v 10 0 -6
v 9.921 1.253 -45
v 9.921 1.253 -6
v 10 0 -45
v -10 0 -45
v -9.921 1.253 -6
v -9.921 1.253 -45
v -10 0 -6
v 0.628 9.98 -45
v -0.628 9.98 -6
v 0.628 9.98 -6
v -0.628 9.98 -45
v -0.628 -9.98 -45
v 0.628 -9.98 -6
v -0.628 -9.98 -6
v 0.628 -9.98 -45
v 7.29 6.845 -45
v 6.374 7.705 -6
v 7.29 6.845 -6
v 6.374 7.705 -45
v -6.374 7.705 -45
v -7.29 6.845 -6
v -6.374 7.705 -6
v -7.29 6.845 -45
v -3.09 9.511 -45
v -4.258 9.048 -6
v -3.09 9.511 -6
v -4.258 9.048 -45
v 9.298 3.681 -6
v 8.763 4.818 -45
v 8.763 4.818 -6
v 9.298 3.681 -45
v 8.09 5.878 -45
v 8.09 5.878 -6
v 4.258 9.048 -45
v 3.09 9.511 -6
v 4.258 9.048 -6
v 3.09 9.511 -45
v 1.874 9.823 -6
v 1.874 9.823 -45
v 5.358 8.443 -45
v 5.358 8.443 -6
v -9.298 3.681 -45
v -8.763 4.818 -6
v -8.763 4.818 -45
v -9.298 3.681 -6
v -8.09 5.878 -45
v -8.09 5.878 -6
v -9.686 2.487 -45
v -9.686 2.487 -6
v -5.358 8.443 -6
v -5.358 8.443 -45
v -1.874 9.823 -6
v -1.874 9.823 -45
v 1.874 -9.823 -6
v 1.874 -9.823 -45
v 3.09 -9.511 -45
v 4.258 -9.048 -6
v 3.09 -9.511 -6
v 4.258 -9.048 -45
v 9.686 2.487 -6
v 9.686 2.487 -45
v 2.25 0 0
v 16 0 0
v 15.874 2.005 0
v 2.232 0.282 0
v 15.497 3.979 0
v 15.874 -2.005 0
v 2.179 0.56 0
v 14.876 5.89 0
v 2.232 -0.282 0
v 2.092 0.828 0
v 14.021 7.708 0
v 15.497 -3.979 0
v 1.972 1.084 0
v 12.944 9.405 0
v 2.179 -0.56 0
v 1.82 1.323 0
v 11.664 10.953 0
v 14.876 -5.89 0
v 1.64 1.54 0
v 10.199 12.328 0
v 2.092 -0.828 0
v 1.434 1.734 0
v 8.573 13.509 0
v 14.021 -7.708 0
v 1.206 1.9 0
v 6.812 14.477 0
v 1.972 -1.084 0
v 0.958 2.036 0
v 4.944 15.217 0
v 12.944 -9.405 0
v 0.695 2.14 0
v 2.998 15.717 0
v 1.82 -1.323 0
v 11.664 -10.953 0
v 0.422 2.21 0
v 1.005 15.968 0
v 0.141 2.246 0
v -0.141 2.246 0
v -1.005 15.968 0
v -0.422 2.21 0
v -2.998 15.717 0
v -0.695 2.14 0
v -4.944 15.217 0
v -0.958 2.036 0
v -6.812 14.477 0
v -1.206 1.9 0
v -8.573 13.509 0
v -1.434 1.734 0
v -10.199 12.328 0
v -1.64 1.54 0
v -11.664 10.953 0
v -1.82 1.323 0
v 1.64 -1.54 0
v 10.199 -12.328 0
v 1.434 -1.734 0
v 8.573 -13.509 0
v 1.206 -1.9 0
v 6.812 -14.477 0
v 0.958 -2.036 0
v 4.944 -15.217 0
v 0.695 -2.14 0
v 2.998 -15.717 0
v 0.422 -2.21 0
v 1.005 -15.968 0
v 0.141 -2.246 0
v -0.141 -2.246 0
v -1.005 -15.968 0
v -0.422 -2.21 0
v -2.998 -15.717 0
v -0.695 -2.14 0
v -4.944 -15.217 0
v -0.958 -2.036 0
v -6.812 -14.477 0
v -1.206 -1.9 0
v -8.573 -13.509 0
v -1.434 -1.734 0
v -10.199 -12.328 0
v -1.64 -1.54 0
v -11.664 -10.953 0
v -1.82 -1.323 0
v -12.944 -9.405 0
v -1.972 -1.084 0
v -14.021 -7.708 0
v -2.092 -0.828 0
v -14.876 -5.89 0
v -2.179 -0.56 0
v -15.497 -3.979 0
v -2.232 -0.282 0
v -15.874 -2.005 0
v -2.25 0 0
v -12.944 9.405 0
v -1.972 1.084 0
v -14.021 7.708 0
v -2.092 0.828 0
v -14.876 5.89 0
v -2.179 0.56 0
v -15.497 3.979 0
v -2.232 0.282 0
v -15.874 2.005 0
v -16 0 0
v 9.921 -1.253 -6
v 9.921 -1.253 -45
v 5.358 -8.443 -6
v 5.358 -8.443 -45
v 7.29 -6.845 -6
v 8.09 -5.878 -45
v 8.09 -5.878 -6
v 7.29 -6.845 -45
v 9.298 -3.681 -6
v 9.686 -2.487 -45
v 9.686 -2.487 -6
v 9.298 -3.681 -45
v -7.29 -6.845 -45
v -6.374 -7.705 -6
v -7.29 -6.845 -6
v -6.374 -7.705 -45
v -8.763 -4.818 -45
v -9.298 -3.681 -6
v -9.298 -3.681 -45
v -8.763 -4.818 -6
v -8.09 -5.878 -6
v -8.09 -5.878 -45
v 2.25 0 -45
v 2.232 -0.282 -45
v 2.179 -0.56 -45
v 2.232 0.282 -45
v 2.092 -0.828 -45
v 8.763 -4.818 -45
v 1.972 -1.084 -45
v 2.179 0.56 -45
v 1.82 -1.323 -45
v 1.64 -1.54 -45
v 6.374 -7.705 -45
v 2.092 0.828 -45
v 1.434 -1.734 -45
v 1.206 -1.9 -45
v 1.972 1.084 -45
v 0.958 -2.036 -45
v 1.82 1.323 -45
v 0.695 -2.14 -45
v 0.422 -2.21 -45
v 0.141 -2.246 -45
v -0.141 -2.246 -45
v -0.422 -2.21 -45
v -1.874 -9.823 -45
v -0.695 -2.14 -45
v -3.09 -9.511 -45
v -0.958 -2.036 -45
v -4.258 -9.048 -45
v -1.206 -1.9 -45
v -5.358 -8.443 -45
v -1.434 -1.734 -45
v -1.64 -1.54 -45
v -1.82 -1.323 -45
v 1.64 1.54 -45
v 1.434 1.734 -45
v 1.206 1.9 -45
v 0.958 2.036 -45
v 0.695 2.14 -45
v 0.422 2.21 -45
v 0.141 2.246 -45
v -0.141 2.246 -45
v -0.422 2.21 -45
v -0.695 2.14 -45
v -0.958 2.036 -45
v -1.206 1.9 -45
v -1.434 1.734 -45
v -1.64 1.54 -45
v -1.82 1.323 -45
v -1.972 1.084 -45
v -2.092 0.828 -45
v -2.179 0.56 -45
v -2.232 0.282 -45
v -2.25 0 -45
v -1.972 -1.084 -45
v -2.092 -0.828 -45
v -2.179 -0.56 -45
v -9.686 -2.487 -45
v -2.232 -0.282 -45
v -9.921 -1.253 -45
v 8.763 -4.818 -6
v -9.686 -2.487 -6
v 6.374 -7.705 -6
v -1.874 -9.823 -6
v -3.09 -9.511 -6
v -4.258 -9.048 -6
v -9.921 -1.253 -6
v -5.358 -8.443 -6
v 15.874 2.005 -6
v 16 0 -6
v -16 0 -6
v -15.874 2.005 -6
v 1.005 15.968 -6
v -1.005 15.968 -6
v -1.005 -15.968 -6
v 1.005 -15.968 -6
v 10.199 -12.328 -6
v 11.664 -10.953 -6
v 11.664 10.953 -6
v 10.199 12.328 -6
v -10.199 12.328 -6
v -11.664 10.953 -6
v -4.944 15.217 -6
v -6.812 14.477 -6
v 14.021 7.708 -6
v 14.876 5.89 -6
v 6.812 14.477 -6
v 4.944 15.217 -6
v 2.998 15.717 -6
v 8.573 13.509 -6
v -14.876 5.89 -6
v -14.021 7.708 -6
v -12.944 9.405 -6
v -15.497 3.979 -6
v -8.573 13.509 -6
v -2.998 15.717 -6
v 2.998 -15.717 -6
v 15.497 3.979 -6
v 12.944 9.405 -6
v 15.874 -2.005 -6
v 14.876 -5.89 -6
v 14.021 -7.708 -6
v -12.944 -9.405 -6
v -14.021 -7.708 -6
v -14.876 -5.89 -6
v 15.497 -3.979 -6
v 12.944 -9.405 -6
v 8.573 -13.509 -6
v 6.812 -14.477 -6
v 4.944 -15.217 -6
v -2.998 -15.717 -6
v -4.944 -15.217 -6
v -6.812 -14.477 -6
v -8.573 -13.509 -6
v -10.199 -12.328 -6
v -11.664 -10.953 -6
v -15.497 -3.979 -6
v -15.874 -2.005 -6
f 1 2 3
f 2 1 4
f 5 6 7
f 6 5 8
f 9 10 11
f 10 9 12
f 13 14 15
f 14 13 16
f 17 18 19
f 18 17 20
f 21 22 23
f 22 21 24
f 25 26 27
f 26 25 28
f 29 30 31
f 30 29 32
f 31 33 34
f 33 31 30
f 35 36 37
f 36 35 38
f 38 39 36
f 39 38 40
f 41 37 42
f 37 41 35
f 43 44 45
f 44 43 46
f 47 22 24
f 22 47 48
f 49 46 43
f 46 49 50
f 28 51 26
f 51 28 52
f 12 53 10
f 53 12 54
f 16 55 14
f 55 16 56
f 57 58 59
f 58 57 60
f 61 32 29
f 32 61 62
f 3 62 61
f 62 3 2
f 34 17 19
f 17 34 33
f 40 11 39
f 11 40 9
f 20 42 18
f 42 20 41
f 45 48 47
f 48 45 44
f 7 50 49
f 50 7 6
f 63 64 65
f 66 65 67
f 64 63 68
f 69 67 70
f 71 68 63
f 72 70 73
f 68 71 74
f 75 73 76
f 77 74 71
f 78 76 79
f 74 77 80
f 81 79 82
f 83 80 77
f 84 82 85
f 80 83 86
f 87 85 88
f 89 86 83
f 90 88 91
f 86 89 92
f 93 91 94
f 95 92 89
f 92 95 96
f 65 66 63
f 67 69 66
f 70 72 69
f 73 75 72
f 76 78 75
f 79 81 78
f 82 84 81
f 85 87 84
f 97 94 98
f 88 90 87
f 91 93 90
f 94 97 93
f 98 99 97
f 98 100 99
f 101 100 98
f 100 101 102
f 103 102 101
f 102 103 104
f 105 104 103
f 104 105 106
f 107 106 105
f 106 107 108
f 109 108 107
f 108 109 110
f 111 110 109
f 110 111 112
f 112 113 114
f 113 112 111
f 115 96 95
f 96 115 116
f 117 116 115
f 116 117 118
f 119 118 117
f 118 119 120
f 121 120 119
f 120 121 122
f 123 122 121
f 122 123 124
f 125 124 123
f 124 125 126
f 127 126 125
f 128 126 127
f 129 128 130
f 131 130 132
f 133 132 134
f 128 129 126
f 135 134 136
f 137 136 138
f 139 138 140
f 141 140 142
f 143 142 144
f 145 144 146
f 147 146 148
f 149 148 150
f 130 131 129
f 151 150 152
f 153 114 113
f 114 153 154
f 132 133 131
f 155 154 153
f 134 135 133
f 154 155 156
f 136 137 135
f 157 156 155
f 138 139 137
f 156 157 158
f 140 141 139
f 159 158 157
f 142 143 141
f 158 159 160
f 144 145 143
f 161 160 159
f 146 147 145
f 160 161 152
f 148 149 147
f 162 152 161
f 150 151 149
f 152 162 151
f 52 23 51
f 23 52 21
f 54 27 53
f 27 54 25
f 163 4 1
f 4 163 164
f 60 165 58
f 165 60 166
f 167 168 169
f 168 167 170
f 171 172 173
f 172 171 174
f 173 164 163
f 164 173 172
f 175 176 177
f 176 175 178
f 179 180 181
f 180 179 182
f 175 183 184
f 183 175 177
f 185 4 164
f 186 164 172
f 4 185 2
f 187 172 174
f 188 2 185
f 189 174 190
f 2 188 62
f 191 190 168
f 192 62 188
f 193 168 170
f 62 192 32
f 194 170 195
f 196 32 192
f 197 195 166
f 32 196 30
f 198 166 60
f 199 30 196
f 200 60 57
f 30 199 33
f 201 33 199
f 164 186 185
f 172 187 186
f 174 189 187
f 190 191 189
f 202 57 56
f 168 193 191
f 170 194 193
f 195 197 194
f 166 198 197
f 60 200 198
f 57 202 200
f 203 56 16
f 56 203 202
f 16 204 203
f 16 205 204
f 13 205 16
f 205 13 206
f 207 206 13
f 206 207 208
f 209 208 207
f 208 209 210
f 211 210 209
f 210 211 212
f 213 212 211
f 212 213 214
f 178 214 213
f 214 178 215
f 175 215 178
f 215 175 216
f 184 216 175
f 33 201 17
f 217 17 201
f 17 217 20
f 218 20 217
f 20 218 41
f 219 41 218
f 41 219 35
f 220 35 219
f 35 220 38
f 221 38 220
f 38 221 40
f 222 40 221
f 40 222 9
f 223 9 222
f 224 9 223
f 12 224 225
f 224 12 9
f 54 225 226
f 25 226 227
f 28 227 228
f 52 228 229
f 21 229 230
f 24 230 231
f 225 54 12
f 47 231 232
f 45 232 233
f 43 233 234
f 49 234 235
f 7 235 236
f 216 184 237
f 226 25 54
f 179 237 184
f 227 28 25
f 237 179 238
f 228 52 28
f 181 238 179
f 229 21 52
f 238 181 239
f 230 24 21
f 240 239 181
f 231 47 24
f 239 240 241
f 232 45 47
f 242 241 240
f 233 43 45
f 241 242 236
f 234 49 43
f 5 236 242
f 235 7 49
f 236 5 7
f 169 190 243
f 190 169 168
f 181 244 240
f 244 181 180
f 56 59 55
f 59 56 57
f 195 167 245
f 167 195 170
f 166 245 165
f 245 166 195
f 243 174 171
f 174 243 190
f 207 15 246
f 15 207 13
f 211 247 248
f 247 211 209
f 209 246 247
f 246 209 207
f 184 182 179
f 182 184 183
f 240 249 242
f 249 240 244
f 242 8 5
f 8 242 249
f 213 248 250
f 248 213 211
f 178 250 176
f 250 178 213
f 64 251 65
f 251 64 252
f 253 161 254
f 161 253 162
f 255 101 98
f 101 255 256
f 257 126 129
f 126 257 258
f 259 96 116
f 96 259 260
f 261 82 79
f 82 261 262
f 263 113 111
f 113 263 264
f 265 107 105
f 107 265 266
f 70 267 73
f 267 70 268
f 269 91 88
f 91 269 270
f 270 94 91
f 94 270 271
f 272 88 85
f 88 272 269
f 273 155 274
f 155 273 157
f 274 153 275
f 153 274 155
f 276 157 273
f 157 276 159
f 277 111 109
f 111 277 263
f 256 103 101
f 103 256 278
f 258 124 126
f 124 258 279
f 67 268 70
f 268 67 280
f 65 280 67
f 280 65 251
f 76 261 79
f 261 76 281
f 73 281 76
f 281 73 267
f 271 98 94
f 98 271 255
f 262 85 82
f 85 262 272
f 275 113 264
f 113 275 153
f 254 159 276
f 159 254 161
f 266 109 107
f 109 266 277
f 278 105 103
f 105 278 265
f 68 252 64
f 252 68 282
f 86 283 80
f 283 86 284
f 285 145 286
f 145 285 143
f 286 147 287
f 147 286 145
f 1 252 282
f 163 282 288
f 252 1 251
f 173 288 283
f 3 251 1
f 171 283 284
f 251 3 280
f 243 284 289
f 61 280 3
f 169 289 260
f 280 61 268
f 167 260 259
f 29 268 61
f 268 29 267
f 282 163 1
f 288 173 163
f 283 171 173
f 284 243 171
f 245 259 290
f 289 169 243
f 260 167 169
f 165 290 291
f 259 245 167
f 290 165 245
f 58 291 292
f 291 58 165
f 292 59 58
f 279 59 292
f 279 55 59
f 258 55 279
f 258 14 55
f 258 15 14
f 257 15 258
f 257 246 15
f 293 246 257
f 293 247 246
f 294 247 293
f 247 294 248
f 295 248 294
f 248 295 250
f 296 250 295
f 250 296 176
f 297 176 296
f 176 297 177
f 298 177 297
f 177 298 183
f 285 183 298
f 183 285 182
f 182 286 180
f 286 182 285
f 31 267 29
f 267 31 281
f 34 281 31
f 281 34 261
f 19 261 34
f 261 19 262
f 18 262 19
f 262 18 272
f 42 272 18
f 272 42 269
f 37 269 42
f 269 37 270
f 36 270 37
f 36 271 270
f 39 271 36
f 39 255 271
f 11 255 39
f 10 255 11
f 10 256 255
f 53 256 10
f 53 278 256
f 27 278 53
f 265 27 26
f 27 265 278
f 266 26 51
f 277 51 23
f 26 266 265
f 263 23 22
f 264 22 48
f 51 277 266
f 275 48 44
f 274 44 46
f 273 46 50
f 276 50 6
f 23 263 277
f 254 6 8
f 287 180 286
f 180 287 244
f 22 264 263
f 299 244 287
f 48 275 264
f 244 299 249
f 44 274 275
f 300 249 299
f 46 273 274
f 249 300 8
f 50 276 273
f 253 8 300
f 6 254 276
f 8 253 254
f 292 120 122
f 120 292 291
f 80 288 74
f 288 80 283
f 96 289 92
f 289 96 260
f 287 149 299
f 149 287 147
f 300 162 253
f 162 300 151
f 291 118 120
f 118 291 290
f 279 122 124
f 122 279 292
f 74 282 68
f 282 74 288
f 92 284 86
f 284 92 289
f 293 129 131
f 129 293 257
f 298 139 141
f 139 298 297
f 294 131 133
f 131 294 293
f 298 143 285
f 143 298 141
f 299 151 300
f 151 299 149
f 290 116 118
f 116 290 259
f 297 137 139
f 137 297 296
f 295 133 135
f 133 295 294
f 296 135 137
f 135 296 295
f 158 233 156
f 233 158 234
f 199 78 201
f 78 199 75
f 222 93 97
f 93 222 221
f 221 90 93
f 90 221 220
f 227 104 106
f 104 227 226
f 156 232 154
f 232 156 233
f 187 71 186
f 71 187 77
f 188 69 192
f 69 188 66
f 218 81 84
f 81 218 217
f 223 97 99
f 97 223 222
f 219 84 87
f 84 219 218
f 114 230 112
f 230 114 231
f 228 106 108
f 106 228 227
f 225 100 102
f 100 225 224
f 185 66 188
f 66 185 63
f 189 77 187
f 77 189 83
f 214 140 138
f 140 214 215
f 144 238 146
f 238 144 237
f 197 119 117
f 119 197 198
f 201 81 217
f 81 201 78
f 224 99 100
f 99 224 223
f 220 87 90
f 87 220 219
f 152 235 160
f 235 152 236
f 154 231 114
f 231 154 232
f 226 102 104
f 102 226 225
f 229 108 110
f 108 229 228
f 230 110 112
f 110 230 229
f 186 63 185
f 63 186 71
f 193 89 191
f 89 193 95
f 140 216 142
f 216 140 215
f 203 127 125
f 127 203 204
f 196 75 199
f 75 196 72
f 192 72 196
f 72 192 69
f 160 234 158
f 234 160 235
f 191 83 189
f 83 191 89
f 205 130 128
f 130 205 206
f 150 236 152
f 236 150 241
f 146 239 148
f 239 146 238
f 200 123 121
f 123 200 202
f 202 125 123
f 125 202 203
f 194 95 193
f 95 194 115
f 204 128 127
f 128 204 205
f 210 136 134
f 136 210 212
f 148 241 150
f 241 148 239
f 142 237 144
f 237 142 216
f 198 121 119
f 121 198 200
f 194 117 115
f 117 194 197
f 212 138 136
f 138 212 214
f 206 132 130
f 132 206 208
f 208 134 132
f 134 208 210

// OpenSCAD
$fn = 50;


difference() {
	union() {
		translate(v = [0, 0, -45.0000000000]) {
			cylinder(h = 45, r = 10.0000000000);
		}
		translate(v = [0, 0, -6.0000000000]) {
			cylinder(h = 6, r = 16.0000000000);
		}
	}
	union() {
		#translate(v = [0, 0, -45]) {
			cylinder(h = 45, r = 2.2500000000);
		}
	}
}
